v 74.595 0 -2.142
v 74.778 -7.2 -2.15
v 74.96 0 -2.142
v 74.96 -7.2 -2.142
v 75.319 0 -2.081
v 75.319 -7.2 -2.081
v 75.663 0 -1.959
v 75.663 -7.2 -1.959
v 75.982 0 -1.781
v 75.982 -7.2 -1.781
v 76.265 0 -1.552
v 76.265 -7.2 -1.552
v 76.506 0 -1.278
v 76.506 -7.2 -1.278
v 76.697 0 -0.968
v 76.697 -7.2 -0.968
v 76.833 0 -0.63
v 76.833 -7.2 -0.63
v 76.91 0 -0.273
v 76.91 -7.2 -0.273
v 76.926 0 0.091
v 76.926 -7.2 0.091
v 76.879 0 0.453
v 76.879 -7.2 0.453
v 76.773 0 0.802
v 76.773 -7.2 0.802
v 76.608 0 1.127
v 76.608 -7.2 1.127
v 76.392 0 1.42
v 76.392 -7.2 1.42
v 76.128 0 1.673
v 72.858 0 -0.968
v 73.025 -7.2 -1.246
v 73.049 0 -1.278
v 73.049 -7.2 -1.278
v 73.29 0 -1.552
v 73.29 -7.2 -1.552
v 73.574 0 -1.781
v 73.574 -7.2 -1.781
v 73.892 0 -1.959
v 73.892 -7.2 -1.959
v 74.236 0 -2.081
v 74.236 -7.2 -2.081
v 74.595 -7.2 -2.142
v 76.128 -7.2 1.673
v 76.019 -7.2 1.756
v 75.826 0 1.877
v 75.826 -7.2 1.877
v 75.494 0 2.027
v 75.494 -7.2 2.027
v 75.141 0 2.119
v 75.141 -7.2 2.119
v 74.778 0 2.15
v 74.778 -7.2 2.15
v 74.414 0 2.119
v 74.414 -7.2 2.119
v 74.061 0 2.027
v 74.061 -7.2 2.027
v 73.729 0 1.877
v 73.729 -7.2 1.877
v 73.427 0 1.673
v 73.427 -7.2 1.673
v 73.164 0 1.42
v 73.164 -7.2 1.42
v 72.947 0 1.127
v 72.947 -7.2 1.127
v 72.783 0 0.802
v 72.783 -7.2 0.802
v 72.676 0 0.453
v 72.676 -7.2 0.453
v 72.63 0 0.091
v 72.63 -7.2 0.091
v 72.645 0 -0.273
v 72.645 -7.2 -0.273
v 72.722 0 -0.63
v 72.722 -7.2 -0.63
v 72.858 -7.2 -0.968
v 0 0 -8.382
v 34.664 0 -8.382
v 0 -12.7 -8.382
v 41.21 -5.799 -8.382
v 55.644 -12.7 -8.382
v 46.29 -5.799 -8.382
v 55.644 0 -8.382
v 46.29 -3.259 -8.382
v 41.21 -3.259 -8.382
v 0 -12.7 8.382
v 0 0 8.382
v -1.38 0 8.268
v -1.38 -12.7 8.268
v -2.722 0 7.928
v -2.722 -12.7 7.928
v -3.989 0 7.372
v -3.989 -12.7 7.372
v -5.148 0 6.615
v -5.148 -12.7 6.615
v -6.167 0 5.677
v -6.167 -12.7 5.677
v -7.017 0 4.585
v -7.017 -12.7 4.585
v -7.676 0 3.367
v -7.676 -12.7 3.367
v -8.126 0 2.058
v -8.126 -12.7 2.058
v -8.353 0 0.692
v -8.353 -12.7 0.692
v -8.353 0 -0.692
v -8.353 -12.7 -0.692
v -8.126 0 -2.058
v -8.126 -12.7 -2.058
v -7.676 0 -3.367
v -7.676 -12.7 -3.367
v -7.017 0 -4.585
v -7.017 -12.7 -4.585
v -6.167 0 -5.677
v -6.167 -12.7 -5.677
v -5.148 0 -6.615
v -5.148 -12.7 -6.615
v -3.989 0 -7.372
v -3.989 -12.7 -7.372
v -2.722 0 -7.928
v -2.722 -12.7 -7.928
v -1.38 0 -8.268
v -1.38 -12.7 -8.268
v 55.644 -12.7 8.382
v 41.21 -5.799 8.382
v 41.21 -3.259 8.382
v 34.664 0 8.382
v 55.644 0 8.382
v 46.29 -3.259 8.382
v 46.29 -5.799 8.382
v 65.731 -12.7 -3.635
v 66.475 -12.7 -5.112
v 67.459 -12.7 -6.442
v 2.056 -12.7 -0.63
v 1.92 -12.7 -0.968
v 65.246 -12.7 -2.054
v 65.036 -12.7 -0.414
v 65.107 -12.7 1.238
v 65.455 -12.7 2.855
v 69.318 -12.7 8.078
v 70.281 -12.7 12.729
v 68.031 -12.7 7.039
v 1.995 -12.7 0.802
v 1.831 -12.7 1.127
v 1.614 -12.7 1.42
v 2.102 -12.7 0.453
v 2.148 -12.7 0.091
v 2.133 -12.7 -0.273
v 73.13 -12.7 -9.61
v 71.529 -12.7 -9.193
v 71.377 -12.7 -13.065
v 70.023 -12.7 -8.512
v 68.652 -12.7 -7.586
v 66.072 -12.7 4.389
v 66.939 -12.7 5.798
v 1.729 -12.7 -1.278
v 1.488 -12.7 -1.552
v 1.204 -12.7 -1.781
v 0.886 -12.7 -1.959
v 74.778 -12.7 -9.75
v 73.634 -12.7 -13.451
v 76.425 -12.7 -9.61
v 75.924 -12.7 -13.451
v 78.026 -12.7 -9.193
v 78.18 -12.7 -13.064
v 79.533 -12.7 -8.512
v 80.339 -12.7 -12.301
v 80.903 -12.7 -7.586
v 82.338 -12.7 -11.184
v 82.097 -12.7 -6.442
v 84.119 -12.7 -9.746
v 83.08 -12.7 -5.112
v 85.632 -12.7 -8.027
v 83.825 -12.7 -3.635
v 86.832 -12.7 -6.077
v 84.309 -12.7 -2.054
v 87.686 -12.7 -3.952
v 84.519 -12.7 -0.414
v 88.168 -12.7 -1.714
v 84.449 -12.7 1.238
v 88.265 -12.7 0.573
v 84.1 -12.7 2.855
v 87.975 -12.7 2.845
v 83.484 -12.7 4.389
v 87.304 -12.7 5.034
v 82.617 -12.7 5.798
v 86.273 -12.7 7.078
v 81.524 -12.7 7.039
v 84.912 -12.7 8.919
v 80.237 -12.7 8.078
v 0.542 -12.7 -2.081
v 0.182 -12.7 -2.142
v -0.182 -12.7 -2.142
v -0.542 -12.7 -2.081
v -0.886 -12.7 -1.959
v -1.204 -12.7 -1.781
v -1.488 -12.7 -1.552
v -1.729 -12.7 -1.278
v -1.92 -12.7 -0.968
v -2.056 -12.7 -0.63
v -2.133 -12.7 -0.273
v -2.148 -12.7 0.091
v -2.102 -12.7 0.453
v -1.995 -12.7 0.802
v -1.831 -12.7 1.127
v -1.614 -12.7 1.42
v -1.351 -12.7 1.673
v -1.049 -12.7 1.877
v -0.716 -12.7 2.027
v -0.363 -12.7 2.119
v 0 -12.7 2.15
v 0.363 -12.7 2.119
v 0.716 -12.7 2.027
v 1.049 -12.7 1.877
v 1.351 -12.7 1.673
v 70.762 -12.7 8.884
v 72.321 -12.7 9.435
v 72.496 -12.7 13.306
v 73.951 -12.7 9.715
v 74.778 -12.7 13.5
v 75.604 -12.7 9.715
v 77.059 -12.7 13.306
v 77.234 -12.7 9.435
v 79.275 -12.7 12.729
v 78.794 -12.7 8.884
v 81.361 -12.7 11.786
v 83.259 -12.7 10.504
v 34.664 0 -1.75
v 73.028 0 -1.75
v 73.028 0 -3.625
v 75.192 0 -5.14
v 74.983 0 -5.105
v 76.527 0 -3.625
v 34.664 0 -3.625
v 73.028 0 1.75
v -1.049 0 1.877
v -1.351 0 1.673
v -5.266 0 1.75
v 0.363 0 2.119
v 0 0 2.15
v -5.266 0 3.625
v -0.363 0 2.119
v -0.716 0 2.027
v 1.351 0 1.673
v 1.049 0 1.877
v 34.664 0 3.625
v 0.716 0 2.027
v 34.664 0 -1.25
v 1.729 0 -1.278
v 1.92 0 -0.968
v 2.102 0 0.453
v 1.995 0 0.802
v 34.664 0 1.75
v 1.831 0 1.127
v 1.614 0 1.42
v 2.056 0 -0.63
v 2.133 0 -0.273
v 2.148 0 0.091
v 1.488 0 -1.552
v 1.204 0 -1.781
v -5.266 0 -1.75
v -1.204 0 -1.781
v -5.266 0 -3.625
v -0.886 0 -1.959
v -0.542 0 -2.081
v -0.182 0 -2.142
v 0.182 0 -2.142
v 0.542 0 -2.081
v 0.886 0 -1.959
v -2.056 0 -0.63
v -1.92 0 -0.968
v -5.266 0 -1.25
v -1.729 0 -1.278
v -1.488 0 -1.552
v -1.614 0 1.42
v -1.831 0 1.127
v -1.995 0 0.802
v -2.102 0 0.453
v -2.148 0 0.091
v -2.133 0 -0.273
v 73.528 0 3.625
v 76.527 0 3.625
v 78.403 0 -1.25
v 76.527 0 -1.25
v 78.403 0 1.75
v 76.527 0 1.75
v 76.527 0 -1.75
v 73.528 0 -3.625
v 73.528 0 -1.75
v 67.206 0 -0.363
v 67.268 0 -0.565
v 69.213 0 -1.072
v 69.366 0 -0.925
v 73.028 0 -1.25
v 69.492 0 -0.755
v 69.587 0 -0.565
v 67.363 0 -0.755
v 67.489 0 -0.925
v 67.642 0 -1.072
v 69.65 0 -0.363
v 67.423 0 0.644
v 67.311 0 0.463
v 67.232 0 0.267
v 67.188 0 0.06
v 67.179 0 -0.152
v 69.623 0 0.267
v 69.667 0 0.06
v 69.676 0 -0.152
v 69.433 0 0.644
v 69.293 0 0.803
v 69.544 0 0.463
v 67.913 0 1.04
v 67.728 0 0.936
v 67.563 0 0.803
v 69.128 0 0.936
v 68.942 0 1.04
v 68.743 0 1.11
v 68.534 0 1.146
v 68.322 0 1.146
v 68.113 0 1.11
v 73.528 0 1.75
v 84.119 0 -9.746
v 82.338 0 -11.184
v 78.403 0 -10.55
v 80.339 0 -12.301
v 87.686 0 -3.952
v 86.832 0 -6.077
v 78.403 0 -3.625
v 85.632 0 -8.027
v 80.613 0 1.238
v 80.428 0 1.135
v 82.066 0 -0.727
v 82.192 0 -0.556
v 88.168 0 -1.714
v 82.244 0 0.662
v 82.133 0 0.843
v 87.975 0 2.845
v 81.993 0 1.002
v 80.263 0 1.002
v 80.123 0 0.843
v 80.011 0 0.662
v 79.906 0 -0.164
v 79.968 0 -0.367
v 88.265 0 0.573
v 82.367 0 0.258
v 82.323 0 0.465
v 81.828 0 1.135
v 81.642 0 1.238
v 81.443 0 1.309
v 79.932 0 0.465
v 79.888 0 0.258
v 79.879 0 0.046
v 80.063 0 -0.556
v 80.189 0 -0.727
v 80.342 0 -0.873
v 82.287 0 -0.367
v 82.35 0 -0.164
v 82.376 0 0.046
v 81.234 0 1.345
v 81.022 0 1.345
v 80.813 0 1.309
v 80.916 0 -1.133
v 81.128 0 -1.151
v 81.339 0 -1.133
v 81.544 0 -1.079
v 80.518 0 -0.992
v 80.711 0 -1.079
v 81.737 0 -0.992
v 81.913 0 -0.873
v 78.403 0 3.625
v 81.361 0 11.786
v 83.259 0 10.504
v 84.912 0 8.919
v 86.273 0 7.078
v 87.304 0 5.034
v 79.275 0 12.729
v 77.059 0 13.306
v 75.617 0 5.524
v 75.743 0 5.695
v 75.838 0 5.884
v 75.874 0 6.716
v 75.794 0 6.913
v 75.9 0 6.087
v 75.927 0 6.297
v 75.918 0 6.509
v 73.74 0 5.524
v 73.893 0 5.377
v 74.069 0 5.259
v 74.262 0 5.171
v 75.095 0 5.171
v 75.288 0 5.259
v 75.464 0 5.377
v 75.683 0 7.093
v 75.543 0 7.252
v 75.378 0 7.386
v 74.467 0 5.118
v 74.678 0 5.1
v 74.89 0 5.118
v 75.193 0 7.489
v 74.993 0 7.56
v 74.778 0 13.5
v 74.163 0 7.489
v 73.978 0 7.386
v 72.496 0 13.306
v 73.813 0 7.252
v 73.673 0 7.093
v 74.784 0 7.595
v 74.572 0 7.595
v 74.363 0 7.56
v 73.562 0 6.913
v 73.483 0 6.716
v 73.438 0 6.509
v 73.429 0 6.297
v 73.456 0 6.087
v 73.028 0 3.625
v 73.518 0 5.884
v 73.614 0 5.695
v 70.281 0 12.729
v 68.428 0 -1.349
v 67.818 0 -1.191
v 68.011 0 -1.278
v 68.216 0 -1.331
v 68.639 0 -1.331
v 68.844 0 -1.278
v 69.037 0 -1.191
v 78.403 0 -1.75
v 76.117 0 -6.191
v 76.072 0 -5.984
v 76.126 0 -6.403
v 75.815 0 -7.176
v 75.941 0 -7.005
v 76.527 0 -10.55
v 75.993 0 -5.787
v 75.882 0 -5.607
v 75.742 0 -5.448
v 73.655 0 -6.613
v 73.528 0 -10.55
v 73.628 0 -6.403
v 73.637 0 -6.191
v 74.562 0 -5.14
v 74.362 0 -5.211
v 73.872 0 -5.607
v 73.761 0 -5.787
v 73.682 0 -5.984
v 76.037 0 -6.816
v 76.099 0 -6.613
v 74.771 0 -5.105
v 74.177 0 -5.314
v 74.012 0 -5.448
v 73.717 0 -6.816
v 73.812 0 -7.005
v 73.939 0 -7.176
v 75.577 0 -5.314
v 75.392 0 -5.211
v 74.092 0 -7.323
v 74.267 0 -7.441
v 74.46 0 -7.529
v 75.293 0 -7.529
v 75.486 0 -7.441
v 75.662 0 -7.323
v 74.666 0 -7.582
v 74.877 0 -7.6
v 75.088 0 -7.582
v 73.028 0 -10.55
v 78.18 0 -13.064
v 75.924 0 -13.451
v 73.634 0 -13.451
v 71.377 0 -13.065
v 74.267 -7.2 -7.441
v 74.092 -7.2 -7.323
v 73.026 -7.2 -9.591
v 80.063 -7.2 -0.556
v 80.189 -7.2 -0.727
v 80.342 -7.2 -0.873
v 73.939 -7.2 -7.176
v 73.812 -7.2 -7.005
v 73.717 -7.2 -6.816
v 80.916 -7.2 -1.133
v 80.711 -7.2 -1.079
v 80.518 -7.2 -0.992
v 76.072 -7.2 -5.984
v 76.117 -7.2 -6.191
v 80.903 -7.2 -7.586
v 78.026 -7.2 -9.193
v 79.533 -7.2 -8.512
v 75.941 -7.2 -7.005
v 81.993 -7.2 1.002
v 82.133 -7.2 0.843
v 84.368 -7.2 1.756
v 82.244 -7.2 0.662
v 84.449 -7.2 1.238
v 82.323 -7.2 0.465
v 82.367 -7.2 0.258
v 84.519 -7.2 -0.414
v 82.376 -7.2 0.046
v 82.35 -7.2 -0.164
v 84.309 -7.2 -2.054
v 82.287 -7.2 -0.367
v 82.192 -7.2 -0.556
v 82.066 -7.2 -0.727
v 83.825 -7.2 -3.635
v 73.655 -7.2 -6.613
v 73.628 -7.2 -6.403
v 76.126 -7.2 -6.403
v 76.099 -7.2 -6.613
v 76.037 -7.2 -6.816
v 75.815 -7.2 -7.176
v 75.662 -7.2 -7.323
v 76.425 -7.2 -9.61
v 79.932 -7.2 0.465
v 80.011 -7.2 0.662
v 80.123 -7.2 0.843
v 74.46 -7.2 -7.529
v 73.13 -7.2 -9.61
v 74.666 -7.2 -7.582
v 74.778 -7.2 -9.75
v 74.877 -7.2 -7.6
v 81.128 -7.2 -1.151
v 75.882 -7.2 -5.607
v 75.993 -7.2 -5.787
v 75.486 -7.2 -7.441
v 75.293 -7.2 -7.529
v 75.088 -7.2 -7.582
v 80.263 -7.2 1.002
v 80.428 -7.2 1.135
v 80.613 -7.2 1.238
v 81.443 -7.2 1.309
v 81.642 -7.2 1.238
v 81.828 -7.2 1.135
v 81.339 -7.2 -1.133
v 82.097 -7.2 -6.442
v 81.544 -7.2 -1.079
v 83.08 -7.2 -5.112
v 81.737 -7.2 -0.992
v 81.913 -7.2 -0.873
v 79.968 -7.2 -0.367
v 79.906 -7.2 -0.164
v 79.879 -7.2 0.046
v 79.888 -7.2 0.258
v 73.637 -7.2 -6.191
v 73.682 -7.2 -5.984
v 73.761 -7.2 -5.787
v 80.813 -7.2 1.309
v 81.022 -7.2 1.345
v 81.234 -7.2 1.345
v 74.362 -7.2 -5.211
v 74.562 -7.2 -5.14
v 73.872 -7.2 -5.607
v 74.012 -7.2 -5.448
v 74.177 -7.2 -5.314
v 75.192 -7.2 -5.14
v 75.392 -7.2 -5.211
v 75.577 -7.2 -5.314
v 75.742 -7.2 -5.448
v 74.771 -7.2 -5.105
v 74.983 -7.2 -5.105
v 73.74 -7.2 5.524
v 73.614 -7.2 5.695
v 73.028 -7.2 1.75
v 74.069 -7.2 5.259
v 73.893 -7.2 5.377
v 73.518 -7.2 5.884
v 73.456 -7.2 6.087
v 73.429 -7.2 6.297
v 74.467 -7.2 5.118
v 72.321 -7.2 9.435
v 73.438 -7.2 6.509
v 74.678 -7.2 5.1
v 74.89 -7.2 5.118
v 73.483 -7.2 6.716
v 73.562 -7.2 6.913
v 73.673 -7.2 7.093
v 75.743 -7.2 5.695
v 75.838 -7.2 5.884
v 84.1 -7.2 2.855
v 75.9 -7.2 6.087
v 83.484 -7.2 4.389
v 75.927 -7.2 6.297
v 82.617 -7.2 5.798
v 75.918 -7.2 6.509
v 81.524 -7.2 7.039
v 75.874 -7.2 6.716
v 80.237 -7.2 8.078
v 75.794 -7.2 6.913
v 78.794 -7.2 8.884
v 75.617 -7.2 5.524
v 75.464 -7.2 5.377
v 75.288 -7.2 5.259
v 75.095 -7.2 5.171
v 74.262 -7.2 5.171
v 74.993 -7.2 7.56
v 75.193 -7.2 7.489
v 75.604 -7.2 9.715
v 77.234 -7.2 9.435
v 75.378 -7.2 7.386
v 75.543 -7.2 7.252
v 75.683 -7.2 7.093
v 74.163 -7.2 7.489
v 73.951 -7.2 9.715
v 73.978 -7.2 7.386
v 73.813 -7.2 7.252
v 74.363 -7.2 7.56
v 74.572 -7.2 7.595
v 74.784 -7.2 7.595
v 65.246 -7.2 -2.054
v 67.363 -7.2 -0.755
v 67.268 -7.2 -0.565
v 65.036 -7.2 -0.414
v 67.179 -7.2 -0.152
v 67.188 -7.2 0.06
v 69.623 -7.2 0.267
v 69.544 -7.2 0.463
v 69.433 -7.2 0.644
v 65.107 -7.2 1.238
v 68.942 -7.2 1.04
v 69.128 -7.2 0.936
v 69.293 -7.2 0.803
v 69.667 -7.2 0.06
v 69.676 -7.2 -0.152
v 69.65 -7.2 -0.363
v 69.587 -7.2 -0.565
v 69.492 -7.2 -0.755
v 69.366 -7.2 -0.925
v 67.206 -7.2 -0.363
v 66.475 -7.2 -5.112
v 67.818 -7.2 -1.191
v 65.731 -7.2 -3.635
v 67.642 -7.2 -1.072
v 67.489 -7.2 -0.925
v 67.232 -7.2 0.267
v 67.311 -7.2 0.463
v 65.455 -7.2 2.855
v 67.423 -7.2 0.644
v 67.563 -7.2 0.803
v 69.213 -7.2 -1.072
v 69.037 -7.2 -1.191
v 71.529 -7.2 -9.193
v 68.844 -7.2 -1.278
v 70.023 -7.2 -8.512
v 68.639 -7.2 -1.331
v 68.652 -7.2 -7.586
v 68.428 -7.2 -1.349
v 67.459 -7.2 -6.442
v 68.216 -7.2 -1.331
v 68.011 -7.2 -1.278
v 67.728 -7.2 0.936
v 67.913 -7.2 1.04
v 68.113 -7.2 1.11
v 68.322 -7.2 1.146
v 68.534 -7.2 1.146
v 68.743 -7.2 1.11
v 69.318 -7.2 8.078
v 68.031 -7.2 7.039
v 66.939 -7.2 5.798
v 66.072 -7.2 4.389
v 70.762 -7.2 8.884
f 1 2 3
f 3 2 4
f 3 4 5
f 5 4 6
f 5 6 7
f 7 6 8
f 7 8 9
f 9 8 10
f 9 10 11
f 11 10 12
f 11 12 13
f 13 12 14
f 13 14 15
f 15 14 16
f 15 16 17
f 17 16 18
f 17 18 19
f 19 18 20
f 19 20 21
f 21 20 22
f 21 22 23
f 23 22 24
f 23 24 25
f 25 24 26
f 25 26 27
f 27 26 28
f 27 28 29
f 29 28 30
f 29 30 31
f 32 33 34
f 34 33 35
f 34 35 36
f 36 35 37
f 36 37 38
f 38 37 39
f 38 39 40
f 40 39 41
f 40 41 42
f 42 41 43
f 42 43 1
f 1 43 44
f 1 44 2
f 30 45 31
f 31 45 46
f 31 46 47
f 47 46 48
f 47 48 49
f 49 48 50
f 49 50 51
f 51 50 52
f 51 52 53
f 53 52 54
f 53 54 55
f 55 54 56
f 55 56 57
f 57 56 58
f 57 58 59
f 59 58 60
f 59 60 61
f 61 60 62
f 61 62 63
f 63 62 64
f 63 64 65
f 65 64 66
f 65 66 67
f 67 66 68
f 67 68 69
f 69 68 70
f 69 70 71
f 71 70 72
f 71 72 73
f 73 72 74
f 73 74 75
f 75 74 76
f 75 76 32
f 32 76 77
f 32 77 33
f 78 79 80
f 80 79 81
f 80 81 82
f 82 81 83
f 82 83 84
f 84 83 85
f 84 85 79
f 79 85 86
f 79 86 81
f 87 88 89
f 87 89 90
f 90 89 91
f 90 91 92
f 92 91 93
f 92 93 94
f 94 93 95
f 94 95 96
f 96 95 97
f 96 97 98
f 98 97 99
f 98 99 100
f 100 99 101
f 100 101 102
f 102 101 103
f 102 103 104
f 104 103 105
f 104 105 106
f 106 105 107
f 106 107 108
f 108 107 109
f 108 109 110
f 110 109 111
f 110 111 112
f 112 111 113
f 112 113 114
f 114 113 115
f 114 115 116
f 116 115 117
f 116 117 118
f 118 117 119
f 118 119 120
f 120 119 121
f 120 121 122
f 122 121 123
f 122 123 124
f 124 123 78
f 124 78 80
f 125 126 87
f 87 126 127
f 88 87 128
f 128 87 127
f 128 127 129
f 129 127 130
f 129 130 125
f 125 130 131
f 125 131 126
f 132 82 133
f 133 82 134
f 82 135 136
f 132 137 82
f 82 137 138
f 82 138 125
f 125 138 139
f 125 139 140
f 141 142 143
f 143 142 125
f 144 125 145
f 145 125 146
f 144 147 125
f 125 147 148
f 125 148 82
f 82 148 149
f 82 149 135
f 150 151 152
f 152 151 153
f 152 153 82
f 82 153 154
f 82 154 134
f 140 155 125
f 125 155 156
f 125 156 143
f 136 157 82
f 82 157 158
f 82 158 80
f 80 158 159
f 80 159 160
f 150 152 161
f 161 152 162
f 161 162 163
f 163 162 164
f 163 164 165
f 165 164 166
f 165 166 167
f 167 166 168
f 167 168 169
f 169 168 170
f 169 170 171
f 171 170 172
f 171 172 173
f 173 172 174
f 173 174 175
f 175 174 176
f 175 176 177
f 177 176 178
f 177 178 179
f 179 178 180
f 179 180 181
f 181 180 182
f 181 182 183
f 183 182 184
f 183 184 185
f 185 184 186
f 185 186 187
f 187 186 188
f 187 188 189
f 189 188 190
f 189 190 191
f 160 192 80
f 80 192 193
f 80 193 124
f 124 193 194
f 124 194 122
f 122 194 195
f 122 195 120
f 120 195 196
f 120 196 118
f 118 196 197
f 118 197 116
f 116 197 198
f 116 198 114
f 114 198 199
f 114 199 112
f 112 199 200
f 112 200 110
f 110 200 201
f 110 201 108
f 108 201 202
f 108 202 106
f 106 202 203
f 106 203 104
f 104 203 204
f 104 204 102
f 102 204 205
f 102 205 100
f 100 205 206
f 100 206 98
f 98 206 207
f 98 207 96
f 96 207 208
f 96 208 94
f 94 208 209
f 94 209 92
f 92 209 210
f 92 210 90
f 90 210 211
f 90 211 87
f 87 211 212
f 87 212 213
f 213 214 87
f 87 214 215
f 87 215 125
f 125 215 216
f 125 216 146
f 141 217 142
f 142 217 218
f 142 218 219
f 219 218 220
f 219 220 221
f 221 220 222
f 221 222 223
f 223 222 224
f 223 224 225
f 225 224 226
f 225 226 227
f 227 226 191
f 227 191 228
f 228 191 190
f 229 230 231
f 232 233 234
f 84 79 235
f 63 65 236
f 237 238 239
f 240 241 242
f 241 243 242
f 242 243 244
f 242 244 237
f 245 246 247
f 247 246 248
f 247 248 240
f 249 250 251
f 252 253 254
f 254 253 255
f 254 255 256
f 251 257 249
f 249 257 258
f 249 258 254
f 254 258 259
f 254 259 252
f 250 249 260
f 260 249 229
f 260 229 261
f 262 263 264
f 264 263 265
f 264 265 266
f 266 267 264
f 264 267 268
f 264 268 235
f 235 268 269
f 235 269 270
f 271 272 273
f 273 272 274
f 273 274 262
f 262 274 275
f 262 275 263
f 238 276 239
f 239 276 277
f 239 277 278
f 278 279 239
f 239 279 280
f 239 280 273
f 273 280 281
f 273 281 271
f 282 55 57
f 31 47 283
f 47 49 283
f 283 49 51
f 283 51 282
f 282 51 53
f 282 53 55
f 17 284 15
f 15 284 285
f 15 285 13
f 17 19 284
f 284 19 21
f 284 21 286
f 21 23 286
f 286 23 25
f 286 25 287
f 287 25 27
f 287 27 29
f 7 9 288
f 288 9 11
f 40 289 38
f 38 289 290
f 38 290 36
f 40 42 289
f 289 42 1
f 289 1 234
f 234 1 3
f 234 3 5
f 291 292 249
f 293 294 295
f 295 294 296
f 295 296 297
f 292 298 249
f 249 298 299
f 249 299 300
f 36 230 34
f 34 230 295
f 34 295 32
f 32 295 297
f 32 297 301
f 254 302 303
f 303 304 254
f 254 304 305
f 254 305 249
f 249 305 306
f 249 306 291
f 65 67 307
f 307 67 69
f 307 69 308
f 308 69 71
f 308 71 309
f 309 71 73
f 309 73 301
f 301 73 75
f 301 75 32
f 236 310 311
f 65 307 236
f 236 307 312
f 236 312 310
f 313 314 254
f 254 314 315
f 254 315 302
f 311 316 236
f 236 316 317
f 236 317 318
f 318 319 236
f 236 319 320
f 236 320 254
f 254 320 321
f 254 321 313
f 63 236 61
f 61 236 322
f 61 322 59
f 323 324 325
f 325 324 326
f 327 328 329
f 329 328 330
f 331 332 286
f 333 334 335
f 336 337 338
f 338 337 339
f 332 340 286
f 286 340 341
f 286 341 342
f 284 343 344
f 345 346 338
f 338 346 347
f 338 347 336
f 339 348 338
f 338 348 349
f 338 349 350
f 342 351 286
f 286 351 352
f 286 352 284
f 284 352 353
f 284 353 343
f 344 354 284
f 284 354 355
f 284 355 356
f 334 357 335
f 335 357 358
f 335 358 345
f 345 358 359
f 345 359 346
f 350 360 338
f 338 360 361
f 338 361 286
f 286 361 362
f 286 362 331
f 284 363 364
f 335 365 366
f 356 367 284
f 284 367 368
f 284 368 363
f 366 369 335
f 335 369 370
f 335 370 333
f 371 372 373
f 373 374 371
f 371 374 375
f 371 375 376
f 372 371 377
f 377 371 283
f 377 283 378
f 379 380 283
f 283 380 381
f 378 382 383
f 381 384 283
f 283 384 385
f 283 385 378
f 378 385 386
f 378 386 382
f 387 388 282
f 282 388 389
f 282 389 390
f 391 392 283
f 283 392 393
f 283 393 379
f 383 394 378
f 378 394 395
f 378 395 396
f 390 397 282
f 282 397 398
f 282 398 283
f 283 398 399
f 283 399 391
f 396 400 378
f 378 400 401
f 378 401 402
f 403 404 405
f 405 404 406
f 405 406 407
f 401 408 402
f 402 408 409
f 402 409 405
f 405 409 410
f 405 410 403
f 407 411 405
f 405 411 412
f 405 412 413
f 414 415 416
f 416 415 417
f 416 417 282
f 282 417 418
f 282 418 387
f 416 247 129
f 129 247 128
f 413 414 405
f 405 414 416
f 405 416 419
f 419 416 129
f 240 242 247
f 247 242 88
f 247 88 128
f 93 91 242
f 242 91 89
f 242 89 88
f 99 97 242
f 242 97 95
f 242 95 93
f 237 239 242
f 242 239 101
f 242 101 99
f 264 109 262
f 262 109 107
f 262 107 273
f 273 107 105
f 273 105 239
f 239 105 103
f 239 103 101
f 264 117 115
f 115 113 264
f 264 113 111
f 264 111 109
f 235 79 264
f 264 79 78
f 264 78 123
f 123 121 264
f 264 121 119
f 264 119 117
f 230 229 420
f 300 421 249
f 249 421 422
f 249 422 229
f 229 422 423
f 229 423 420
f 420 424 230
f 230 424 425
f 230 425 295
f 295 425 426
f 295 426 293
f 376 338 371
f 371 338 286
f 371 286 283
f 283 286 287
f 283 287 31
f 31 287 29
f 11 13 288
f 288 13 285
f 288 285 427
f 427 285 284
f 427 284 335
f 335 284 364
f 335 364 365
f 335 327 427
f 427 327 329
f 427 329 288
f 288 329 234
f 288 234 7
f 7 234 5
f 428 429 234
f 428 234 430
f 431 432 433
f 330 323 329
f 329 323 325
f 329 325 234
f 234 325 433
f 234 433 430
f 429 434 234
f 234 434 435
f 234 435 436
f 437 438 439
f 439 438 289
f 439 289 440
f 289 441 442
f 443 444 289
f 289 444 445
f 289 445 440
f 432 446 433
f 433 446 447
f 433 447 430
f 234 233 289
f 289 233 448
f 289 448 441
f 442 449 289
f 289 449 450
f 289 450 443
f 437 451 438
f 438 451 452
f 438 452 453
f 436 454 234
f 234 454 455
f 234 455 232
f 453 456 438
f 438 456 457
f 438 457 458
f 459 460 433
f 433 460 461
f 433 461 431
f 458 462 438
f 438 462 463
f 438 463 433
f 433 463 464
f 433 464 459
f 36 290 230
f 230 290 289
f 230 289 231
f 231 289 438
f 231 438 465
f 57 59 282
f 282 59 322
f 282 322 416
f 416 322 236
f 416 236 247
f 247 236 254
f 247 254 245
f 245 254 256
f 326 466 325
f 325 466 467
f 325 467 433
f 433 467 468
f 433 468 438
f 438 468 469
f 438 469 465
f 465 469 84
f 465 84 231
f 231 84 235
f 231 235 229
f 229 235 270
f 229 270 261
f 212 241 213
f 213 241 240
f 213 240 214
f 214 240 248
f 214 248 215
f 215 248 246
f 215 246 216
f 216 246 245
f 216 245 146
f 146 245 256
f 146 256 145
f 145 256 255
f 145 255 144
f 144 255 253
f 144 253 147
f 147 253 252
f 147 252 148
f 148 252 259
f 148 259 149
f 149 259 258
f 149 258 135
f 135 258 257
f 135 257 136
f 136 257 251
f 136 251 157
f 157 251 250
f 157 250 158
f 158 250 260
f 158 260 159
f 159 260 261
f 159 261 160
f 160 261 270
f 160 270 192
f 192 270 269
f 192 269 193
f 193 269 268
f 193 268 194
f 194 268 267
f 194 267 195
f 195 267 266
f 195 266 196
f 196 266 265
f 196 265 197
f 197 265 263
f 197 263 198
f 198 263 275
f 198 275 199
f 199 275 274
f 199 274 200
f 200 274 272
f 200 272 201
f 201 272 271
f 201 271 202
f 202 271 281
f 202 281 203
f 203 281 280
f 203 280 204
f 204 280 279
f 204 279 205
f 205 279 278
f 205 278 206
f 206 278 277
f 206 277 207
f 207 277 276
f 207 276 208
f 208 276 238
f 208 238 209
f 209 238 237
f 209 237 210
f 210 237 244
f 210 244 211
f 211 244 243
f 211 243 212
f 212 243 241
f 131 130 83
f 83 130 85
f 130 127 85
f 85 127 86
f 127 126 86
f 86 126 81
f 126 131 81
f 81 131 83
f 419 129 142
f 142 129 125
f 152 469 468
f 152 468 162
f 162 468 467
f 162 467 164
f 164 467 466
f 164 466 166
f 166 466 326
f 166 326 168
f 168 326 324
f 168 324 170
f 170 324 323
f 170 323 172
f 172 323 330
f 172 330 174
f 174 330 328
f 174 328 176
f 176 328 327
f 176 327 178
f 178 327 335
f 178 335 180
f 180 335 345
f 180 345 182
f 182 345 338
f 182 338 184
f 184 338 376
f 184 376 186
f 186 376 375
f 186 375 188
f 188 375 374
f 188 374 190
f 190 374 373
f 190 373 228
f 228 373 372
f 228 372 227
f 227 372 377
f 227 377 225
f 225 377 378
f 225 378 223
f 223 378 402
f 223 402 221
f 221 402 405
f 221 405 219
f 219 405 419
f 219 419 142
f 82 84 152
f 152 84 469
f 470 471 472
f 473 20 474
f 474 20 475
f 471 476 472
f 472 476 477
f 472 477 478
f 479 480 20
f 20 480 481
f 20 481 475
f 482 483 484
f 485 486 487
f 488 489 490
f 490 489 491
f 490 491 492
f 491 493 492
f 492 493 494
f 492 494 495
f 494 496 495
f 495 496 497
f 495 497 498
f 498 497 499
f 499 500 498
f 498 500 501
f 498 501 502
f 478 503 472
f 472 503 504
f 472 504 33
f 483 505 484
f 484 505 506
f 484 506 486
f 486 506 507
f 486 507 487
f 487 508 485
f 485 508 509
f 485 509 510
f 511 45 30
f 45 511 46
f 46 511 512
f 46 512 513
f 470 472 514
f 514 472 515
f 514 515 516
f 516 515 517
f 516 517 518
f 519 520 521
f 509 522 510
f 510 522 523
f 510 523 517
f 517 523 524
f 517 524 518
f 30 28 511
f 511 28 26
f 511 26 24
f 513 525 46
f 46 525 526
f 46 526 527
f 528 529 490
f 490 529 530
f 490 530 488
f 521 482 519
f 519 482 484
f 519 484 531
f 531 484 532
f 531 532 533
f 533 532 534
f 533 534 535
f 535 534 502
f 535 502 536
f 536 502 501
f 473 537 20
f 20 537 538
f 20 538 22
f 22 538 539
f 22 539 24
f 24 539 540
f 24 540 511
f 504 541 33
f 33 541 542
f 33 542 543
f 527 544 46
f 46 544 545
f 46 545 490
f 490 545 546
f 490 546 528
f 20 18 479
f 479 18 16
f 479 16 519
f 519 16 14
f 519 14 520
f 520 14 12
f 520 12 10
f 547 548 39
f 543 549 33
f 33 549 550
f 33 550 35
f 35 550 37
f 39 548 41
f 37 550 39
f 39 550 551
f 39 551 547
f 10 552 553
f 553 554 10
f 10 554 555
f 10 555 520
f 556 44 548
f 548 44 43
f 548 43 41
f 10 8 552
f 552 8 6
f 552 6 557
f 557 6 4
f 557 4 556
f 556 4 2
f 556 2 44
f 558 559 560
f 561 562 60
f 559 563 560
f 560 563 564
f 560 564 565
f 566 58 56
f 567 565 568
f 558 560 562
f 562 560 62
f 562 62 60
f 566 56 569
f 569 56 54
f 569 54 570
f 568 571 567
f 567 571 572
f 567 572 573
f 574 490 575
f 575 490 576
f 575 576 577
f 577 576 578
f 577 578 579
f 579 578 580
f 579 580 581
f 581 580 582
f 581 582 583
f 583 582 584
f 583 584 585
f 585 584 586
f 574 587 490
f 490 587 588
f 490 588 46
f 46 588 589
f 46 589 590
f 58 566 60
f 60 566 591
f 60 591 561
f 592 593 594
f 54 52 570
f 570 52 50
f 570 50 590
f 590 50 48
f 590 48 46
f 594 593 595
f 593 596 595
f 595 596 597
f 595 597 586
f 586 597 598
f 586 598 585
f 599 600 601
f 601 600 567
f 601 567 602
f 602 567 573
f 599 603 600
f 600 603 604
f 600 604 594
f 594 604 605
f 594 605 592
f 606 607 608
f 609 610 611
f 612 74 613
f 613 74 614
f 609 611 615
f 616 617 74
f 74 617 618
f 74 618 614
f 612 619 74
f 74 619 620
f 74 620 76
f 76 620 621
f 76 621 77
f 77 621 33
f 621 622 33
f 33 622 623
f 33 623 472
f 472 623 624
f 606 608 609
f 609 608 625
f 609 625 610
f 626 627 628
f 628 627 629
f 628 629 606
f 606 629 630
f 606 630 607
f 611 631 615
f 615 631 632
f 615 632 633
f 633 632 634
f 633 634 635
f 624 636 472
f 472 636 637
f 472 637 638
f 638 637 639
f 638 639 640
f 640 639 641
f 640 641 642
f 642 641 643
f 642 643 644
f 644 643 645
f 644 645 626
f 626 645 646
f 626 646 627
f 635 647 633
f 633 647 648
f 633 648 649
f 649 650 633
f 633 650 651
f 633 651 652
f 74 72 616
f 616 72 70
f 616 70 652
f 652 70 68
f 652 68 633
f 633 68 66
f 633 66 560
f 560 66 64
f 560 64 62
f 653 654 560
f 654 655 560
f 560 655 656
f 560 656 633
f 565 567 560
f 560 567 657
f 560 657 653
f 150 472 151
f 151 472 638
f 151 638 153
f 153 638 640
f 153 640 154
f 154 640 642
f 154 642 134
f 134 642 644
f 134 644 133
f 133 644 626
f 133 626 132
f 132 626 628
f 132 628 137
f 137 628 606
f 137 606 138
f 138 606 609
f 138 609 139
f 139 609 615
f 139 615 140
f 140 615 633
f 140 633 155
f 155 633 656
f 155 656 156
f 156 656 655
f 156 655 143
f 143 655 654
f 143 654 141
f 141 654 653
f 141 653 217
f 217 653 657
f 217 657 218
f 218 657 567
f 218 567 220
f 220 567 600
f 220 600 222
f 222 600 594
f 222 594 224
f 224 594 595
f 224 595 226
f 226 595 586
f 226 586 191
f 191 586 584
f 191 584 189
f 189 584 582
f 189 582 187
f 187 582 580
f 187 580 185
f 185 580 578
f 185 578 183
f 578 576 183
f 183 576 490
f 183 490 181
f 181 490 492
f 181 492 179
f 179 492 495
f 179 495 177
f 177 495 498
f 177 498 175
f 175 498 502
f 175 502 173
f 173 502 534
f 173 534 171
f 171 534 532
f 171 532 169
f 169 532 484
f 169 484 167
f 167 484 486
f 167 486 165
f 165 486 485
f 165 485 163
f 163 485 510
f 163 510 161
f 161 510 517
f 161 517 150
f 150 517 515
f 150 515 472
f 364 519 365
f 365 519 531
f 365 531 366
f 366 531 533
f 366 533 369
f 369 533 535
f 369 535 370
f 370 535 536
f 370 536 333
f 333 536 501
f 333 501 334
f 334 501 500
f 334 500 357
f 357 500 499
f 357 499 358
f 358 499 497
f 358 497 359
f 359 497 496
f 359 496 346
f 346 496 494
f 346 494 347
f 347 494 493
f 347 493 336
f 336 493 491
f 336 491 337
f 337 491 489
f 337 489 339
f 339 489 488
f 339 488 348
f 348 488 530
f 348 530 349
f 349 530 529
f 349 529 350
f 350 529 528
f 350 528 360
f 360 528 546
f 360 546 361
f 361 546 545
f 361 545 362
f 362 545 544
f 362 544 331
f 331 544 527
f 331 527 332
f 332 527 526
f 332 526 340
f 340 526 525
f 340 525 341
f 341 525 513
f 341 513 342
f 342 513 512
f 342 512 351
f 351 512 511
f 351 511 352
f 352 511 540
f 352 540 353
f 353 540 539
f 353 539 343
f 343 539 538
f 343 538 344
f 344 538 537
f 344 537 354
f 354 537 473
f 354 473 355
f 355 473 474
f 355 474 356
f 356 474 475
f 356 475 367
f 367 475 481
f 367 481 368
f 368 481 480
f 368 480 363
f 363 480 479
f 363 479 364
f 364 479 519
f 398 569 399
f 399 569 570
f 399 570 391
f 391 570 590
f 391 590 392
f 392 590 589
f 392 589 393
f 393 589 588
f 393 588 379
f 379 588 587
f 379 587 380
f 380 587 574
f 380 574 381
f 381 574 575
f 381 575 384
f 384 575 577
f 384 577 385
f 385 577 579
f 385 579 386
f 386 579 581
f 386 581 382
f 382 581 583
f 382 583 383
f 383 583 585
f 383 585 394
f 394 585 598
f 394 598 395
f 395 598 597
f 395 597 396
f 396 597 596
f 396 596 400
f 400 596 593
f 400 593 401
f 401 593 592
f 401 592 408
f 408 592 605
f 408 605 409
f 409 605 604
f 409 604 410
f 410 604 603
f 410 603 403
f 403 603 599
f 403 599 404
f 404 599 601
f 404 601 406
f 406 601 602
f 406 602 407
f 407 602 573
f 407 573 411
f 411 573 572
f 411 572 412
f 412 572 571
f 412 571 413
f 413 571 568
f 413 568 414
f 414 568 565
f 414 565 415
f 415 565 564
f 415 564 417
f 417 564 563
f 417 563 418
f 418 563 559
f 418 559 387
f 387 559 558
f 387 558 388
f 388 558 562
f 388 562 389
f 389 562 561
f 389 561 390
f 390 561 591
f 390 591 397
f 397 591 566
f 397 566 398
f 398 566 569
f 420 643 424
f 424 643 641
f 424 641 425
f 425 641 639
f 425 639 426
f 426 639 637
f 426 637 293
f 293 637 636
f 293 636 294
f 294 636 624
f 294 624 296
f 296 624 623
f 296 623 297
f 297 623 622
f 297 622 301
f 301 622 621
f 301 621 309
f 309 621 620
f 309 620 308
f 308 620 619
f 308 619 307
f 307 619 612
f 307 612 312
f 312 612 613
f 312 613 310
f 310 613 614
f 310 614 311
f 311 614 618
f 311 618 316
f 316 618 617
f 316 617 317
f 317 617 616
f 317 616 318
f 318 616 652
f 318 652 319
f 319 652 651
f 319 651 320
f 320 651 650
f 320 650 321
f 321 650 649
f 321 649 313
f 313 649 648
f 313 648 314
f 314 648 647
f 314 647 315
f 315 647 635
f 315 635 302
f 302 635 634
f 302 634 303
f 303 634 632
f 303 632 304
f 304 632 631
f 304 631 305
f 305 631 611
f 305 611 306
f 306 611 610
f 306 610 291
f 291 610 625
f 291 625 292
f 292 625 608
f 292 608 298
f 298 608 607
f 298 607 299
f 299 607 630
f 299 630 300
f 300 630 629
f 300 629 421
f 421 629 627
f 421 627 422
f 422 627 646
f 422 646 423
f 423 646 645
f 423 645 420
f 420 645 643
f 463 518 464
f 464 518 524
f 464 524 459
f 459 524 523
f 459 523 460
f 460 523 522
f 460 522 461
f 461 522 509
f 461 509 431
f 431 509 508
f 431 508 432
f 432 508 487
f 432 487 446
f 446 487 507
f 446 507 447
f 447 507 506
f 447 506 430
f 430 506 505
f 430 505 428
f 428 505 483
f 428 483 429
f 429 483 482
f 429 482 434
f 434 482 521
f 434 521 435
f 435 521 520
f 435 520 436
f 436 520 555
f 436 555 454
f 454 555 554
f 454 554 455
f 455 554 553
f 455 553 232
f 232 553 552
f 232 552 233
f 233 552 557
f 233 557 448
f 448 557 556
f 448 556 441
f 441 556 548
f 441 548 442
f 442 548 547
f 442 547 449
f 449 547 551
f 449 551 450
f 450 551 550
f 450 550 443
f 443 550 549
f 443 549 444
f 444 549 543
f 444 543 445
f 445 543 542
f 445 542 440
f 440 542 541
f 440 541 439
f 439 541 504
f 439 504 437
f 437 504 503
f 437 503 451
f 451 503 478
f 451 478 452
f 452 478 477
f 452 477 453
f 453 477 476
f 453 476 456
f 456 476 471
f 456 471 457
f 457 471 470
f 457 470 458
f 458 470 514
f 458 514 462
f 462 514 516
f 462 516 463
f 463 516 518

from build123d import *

# Parameters (mm, degrees)
SKETCH2_R               = 2.15
BOSS_EXTRUDE1_DEPTH     = 12.7
CUT_EXTRUDE1_DEPTH      = 86.777857097
CUT_EXTRUDE1_DEPTH_BACK = 86.777857097
SKETCH3_W               = 5.08
SKETCH3_H               = 2.54
BOSS_EXTRUDE2_DEPTH     = 12.7
SKETCH5_R               = 9.75
CUT_EXTRUDE2_DEPTH      = 5.5
CUT_EXTRUDE3_DEPTH      = 90.593664183
CUT_EXTRUDE3_DEPTH_BACK = 90.593664183
SKETCH6_R               = 1.25


with BuildPart() as part:
    # Sketch2 → Boss-Extrude1 (new body)
    with BuildSketch(Plane(origin=(0, 0, 0), x_dir=(1, 0, 0), z_dir=(0, 1, 0))):
        with BuildLine():
            Line((0, 8.382), (74.7776, 8.382))
            ThreePointArc((74.7776, 8.382), (83.1596, 0), (74.7776, -8.382))
            Line((74.7776, -8.382), (0, -8.382))
            ThreePointArc((0, -8.382), (-8.382, 0), (0, 8.382))
        make_face()
        with Locations(Location((0, 0, 0), (0, 0, 270))):
            Circle(SKETCH2_R, mode=Mode.SUBTRACT)
        with Locations(Location((74.7776, 0, 0), (0, 0, 270))):
            Circle(SKETCH2_R, mode=Mode.SUBTRACT)
    extrude(amount=-BOSS_EXTRUDE1_DEPTH)

    # Sketch3 → Cut-Extrude1 (cut, two sides: drawn at the far end of the back side and taken through both)
    with BuildSketch(Plane(origin=(0, 0, -8.382), x_dir=(-1, 0, 0), z_dir=(0, 0, -1)).offset(-CUT_EXTRUDE1_DEPTH_BACK)):
        with Locations((-43.750123937, -4.528631303)):
            Rectangle(SKETCH3_W, SKETCH3_H)
    extrude(amount=CUT_EXTRUDE1_DEPTH + CUT_EXTRUDE1_DEPTH_BACK, mode=Mode.SUBTRACT)

    # Sketch4 → Boss-Extrude2 (add)
    with BuildSketch(Plane(origin=(0, 0, 0), x_dir=(1, 0, 0), z_dir=(0, 1, 0))):
        with BuildLine():
            Line((71.377269841, 13.064752382), (70.480233935, 12.79775937))
            ThreePointArc((70.480233935, 12.79775937), (67.016909963, 11.04634284), (64.194969136, 8.382))
            Line((64.194969136, 8.382), (74.7776, 8.382))
            ThreePointArc((74.7776, 8.382), (83.1596, 0), (74.7776, -8.382))
            Line((74.7776, -8.382), (64.194969136, -8.382))
            ThreePointArc((64.194969136, -8.382), (66.930768284, -10.985318931), (70.280616628, -12.728988198))
            ThreePointArc((70.280616628, -12.728988198), (82.573134763, -11.021780154), (88.2776, 0))
            ThreePointArc((88.2776, 0), (83.034280412, 10.680694199), (71.377269841, 13.064752382))
        make_face()
        with BuildLine():
            Line((70.480233935, 12.79775937), (55.644284932, 8.382))
            Line((55.644284932, 8.382), (64.194969136, 8.382))
            ThreePointArc((64.194969136, 8.382), (67.016909963, 11.04634284), (70.480233935, 12.79775937))
        make_face()
        with BuildLine():
            ThreePointArc((70.280616628, -12.728988198), (66.930768284, -10.985318931), (64.194969136, -8.382))
            Line((64.194969136, -8.382), (55.644284932, -8.382))
            Line((55.644284932, -8.382), (70.280616628, -12.728988198))
        make_face()
    extrude(amount=-BOSS_EXTRUDE2_DEPTH)

    # Sketch5 → Cut-Extrude2 (cut)
    with BuildSketch(Plane(origin=(0, -12.7, 0), x_dir=(-1, 0, 0), z_dir=(0, -1, 0))):
        with Locations(Location((-74.7776, 0, 0), (0, 0, 90))):
            Circle(SKETCH5_R)
    extrude(amount=-CUT_EXTRUDE2_DEPTH, mode=Mode.SUBTRACT)

    # Sketch6 → Cut-Extrude3 (cut, two sides: drawn at the far end of the back side and taken through both)
    with BuildSketch(Plane(origin=(0, -7.2, 0), x_dir=(-1, 0, 0), z_dir=(0, -1, 0)).offset(-CUT_EXTRUDE3_DEPTH_BACK)):
        with Locations(Location((-74.876863781, 6.35, 0), (0, 0, 90))):
            Circle(SKETCH6_R)
        with Locations(Location((-68.4276, 0.099263781, 0), (0, 0, 90))):
            Circle(SKETCH6_R)
        with Locations(Location((-74.678336219, -6.35, 0), (0, 0, 90))):
            Circle(SKETCH6_R)
        with Locations(Location((-81.1276, -0.099263781, 0), (0, 0, 90))):
            Circle(SKETCH6_R)
    extrude(amount=CUT_EXTRUDE3_DEPTH + CUT_EXTRUDE3_DEPTH_BACK, mode=Mode.SUBTRACT)


solid = part.part
